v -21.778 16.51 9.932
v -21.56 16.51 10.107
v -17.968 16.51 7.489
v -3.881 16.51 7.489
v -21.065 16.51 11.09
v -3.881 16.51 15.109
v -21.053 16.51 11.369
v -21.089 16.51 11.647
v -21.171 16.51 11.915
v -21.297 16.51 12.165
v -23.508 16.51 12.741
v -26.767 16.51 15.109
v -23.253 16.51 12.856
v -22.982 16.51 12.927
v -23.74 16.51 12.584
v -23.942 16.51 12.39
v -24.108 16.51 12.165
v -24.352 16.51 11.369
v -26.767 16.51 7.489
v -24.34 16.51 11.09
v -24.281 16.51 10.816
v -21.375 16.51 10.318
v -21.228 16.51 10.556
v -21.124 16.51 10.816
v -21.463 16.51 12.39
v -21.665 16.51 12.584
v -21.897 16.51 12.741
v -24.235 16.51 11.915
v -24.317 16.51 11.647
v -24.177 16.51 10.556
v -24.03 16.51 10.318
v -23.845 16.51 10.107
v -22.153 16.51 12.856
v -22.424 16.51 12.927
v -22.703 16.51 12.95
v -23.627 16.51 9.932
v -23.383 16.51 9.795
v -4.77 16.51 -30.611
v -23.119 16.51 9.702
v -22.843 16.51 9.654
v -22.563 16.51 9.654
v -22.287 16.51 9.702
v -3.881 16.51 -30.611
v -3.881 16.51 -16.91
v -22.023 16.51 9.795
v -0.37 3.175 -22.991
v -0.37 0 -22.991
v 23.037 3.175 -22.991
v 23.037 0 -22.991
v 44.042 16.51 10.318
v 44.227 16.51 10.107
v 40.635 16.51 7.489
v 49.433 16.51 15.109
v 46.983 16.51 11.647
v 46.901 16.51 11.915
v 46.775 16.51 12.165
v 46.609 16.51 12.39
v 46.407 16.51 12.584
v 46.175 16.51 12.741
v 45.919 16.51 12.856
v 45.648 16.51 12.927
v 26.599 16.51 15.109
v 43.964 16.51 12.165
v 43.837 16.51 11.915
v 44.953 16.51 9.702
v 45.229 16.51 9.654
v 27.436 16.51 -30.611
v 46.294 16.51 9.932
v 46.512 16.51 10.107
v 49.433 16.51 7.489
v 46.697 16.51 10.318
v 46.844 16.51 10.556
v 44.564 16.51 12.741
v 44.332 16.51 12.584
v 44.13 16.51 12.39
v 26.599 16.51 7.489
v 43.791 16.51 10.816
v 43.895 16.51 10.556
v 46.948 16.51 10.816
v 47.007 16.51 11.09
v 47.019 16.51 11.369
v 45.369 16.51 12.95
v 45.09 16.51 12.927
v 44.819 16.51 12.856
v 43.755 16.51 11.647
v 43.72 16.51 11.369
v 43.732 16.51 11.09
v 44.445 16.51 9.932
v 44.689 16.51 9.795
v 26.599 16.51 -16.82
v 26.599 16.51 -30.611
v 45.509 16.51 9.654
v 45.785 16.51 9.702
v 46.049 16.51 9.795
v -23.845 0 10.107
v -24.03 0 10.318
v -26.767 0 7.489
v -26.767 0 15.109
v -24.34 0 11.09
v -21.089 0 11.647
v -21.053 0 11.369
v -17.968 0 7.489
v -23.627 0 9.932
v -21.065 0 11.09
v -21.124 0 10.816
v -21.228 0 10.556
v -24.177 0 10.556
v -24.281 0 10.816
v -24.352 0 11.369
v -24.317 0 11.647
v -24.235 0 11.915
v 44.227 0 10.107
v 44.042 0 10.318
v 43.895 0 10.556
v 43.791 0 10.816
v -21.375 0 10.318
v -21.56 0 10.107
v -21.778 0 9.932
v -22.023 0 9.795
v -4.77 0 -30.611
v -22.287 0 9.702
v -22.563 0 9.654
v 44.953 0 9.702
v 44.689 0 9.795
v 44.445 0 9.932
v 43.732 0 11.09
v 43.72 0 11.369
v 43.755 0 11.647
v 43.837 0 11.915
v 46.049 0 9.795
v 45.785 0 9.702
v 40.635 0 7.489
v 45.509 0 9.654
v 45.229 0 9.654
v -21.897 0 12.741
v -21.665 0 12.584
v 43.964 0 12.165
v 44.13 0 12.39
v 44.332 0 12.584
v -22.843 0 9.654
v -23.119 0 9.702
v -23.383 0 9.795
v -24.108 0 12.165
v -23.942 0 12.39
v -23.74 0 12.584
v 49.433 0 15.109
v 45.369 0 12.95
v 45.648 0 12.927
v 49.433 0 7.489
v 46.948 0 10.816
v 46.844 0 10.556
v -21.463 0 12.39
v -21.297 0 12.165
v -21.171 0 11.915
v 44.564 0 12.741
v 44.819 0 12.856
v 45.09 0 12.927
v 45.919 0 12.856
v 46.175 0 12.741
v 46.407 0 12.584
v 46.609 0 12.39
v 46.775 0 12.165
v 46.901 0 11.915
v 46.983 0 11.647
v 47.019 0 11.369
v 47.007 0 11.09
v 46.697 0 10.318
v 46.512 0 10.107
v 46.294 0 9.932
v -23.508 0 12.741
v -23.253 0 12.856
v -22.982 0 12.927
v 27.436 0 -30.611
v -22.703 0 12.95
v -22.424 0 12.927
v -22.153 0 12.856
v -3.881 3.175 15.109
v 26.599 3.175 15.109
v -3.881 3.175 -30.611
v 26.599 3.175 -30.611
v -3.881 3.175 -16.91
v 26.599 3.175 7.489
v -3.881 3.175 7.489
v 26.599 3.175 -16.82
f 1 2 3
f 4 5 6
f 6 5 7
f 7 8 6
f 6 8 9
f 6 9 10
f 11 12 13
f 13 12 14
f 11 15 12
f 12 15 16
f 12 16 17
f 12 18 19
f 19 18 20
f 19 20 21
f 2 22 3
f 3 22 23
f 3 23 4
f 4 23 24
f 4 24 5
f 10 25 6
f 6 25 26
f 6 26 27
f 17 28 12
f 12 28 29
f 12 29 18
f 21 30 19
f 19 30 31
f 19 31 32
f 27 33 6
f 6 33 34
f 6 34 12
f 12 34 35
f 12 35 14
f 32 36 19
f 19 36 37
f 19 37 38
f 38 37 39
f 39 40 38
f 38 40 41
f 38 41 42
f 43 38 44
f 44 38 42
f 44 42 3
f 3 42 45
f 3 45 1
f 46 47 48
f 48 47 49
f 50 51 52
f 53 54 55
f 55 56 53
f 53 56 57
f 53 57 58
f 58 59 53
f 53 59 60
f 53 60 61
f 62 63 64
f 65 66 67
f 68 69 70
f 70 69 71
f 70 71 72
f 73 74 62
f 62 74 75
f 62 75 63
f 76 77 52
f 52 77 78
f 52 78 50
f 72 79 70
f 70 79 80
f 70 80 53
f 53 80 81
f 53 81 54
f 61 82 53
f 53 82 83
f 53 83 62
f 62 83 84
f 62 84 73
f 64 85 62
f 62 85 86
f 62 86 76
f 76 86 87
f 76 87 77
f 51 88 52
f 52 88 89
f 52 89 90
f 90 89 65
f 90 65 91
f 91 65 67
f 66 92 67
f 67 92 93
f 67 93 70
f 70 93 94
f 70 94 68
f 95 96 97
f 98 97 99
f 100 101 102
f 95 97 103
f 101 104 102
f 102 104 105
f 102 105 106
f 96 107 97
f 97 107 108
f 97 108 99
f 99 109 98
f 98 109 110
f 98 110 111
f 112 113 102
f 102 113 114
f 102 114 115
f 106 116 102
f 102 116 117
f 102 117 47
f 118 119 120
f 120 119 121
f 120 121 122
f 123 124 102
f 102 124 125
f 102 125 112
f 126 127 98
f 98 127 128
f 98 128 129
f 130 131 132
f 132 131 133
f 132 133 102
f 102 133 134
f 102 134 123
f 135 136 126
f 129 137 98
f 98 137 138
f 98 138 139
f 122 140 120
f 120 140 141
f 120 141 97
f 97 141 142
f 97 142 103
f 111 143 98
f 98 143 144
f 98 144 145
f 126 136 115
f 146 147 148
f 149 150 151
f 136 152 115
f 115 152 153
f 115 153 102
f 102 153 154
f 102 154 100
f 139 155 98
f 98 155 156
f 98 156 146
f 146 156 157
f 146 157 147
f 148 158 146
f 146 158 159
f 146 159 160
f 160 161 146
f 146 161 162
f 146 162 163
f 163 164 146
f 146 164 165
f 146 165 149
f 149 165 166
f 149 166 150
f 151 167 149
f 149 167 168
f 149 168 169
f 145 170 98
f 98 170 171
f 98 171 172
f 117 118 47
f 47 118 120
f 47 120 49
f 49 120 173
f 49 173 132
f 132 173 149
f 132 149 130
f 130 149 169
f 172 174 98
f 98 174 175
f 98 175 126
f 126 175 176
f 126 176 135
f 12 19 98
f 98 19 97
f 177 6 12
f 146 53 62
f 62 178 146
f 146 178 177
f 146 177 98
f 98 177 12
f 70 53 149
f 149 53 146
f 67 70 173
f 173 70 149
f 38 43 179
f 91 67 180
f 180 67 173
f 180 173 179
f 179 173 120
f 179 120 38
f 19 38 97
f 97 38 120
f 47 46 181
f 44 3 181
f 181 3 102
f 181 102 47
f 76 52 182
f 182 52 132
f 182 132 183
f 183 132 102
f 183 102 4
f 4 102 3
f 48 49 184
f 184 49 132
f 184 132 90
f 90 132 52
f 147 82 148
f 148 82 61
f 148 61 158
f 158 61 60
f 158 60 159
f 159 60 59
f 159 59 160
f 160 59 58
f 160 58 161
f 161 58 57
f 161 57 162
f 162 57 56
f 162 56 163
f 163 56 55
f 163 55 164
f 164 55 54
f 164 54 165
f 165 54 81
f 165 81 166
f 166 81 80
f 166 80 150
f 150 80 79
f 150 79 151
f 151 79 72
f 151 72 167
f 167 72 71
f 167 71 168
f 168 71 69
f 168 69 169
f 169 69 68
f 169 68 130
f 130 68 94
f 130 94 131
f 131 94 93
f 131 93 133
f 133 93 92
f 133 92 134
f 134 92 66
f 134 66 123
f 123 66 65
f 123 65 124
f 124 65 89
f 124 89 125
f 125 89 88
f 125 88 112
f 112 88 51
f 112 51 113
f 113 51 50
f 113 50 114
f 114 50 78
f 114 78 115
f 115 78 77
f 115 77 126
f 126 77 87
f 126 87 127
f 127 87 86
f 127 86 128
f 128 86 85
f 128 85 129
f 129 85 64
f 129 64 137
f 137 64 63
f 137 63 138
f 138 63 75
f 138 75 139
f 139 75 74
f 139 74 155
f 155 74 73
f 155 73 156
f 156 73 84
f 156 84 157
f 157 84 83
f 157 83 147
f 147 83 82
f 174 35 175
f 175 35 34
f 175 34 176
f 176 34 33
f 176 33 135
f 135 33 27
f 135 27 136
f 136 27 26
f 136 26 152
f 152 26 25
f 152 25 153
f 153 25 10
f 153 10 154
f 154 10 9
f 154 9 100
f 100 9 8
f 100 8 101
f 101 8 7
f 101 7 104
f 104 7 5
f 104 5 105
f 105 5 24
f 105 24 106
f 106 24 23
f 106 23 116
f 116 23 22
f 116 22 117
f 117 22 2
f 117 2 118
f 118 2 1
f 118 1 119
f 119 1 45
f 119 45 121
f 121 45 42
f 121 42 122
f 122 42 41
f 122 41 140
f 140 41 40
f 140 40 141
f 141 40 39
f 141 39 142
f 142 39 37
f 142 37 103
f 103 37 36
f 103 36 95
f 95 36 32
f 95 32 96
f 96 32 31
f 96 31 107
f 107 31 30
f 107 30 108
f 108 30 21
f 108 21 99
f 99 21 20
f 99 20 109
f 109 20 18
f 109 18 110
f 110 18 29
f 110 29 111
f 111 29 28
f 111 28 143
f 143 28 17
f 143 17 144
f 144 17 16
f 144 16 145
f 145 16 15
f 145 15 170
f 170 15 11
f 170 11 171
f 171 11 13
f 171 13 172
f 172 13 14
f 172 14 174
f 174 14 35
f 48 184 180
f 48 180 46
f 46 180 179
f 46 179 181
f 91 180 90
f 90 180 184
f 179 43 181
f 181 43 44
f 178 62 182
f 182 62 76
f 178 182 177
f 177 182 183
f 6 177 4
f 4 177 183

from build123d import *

# Parameters (mm, degrees)
BOSS_EXTRUDE1_DEPTH = 16.51
SKETCH2_R           = 1.651
CUT_EXTRUDE1_DEPTH  = 16.51
SKETCH3_W           = 30.48
SKETCH3_H           = 45.72
CUT_EXTRUDE2_DEPTH  = 13.335


with BuildPart() as part:
    # Sketch1 → Boss-Extrude1 (new body)
    with BuildSketch(Plane(origin=(0, 0, 0), x_dir=(1, 0, 0), z_dir=(0, 1, 0))):
        Polygon((-26.766598834, -7.489394136), (-4.769553578, 30.610605864), (27.43635591, 30.610605864), (49.433401166, -7.489394136), (49.433401166, -15.109394136), (-26.766598834, -15.109394136), align=None)
        Polygon((-17.967780731, -7.489394136), (40.634583064, -7.489394136), (23.036946859, 22.990605864), (-0.370144526, 22.990605864), align=None, mode=Mode.SUBTRACT)
    extrude(amount=BOSS_EXTRUDE1_DEPTH)

    # Sketch2 → Cut-Extrude1 (cut)
    with BuildSketch(Plane(origin=(0, 16.51, 0), x_dir=(1, 0, 0), z_dir=(0, 1, 0))):
        with Locations(Location((-22.702598834, -11.299394136, 0), (0, 0, 270))):
            Circle(SKETCH2_R)
        with Locations(Location((45.369401166, -11.299394136, 0), (0, 0, 270))):
            Circle(SKETCH2_R)
    extrude(amount=-CUT_EXTRUDE1_DEPTH, mode=Mode.SUBTRACT)

    # Sketch3 → Cut-Extrude2 (cut)
    with BuildSketch(Plane(origin=(0, 16.51, 0), x_dir=(1, 0, 0), z_dir=(0, 1, 0))):
        with Locations((11.359446422, 7.750605864)):
            Rectangle(SKETCH3_W, SKETCH3_H)
    extrude(amount=-CUT_EXTRUDE2_DEPTH, mode=Mode.SUBTRACT)


solid = part.part
